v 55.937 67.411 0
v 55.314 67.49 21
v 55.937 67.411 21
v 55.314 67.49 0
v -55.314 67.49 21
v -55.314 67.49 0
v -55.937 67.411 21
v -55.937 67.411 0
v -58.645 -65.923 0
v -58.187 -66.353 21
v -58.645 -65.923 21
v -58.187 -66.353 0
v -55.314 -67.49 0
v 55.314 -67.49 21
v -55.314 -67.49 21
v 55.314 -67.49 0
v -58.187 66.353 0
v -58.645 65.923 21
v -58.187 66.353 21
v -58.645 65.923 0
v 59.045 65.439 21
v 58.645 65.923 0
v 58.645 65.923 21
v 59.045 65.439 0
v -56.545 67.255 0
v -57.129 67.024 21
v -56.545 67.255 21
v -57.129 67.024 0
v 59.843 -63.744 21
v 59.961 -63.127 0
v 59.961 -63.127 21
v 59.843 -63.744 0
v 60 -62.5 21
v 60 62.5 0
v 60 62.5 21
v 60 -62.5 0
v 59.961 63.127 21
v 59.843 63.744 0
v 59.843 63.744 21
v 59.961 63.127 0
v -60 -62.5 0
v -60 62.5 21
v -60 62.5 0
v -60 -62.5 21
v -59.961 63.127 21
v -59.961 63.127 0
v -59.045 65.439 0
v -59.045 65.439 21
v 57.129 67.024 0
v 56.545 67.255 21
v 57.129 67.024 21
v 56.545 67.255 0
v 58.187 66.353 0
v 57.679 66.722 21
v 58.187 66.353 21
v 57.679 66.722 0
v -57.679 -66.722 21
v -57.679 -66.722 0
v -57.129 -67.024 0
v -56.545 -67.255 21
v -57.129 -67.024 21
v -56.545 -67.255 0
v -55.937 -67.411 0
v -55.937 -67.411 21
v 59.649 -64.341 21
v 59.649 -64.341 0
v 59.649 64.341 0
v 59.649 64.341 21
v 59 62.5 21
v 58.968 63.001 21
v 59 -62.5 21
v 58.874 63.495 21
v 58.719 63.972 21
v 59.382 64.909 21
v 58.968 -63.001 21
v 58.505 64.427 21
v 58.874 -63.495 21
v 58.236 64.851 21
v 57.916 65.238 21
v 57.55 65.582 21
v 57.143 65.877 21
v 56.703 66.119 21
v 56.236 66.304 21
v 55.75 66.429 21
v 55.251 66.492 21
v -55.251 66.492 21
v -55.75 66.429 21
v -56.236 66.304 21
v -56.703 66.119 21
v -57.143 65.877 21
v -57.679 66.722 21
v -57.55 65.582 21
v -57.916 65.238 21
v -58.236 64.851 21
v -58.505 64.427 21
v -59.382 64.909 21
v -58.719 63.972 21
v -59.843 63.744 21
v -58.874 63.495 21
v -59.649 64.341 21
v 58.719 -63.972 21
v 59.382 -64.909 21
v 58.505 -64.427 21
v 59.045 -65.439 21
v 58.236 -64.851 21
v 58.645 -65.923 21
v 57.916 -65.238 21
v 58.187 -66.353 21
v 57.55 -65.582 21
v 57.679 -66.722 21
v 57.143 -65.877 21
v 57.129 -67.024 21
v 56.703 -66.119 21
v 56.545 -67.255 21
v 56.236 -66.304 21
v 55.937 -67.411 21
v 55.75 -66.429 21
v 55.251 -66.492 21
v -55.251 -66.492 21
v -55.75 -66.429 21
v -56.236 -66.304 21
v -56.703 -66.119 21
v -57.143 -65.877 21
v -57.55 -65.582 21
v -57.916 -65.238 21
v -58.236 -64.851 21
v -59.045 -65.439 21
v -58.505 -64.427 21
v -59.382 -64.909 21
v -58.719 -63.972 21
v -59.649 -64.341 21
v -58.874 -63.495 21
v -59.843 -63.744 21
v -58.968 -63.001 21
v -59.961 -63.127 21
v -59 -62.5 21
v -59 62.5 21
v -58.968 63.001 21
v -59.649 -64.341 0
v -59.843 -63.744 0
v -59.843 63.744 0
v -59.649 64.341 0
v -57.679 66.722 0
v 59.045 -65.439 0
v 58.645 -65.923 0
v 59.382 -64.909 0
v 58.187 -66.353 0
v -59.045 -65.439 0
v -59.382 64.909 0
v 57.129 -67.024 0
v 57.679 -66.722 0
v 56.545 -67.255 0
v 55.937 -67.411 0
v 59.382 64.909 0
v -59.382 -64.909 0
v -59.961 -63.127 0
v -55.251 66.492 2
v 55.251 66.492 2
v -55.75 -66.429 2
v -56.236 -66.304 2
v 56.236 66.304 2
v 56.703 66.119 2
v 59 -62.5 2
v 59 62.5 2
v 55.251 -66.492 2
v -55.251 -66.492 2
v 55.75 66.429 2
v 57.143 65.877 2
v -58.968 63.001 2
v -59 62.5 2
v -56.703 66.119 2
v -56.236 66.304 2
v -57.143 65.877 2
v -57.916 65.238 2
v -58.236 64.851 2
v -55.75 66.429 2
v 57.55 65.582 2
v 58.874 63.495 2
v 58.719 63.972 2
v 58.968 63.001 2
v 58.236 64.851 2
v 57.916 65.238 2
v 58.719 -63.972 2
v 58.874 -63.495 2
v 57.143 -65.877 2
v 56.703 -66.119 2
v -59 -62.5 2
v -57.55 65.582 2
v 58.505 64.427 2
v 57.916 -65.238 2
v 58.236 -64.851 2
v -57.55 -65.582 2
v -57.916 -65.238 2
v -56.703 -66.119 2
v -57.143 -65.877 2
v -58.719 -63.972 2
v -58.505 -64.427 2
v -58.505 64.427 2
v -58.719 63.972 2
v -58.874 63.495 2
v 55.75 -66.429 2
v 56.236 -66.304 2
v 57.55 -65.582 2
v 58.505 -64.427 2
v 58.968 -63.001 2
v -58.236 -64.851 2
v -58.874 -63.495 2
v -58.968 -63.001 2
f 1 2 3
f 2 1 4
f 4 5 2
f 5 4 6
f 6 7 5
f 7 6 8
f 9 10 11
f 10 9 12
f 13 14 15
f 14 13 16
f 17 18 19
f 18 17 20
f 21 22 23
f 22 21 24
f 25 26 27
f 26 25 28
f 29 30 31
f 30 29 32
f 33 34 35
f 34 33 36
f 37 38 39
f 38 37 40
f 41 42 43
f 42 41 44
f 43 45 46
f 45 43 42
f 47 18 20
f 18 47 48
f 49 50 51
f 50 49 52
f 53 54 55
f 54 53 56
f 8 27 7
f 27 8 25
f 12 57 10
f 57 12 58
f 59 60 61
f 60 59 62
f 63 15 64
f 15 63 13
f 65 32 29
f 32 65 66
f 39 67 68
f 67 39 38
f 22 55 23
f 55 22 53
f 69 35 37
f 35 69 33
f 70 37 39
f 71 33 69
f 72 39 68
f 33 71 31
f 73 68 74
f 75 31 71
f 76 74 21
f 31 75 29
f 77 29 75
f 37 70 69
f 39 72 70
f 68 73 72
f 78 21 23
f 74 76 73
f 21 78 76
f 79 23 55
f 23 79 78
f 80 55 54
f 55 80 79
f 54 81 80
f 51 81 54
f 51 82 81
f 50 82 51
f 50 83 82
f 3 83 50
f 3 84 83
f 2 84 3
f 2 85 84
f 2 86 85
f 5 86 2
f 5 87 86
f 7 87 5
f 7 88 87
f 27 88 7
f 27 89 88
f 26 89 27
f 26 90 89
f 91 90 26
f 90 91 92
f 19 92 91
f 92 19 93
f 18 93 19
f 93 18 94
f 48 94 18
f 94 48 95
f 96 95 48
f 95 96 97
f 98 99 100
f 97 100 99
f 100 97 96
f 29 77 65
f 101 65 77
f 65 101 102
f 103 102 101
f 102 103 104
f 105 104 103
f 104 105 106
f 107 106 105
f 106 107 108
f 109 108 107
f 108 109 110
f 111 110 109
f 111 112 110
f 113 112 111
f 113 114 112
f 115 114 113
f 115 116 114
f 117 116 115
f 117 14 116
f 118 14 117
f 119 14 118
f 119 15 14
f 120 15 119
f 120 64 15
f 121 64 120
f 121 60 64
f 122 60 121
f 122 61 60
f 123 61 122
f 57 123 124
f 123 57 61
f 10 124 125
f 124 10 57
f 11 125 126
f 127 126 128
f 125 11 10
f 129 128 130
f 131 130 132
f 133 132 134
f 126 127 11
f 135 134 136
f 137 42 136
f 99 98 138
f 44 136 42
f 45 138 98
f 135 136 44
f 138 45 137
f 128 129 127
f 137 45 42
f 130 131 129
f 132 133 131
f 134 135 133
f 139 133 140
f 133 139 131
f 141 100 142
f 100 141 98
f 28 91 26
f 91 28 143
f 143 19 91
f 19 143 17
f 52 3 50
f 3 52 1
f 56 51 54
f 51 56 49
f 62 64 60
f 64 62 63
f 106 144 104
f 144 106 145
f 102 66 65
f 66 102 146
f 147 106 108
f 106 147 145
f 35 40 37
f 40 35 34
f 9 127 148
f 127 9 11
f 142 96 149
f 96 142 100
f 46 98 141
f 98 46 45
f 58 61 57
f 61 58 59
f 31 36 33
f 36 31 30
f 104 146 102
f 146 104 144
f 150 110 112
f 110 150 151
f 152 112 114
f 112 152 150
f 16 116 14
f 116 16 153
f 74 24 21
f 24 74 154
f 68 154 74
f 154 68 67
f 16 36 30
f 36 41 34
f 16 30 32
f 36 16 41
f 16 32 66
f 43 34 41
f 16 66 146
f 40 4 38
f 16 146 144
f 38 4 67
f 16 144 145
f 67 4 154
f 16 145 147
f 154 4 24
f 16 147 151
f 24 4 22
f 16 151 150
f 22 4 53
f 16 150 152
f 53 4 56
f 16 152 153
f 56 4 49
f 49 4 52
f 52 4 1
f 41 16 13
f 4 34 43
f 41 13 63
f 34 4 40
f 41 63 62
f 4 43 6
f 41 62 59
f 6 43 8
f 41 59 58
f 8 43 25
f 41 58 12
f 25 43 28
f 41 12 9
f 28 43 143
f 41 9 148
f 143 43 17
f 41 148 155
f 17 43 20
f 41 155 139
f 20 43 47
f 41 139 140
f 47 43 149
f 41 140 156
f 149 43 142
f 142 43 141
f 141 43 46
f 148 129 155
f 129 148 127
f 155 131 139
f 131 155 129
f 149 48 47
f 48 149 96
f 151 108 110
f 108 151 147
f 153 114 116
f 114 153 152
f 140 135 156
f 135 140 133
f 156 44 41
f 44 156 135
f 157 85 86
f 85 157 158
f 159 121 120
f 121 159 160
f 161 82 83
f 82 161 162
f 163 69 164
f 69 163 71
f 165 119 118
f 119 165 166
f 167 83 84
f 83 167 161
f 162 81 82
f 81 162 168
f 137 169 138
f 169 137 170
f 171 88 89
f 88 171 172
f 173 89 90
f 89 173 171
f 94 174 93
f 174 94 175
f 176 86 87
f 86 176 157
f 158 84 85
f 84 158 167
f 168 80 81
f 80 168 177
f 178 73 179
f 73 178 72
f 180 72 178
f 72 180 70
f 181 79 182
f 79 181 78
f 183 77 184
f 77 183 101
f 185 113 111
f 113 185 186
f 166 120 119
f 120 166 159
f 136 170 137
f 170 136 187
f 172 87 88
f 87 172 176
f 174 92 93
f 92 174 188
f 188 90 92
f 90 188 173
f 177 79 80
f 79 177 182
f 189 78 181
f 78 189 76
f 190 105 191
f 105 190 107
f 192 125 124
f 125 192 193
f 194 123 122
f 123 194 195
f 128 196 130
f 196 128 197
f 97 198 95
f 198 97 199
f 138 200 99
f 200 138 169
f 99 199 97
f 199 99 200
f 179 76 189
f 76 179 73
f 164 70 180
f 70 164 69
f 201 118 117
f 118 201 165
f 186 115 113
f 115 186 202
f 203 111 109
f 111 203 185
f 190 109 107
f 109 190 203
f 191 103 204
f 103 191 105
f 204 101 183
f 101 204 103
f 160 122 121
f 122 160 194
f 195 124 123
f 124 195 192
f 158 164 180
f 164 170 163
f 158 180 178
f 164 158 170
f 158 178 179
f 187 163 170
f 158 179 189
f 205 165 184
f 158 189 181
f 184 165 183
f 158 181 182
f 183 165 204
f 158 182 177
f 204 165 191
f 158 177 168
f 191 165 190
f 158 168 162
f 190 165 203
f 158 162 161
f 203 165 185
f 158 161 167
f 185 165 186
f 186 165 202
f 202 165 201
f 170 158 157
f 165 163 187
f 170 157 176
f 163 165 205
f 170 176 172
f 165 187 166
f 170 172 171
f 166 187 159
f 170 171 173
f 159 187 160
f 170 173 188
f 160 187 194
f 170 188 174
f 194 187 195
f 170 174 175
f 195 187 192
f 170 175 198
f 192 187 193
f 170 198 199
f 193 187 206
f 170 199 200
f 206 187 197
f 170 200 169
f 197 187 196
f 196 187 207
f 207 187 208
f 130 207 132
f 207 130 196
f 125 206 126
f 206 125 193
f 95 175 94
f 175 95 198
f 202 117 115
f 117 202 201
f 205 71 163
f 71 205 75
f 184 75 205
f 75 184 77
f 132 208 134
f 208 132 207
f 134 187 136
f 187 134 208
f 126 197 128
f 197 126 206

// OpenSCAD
$fn = 50;


difference() {
	union() {
		hull() {
			translate(v = [-55.0000000000, 62.5000000000, 0]) {
				cylinder(h = 21, r = 5);
			}
			translate(v = [55.0000000000, 62.5000000000, 0]) {
				cylinder(h = 21, r = 5);
			}
			translate(v = [-55.0000000000, -62.5000000000, 0]) {
				cylinder(h = 21, r = 5);
			}
			translate(v = [55.0000000000, -62.5000000000, 0]) {
				cylinder(h = 21, r = 5);
			}
		}
	}
	union() {
		translate(v = [0, 0, 2]) {
			hull() {
				translate(v = [-55.0000000000, 62.5000000000, 0]) {
					cylinder(h = 19, r = 4);
				}
				translate(v = [55.0000000000, 62.5000000000, 0]) {
					cylinder(h = 19, r = 4);
				}
				translate(v = [-55.0000000000, -62.5000000000, 0]) {
					cylinder(h = 19, r = 4);
				}
				translate(v = [55.0000000000, -62.5000000000, 0]) {
					cylinder(h = 19, r = 4);
				}
			}
		}
	}
}
